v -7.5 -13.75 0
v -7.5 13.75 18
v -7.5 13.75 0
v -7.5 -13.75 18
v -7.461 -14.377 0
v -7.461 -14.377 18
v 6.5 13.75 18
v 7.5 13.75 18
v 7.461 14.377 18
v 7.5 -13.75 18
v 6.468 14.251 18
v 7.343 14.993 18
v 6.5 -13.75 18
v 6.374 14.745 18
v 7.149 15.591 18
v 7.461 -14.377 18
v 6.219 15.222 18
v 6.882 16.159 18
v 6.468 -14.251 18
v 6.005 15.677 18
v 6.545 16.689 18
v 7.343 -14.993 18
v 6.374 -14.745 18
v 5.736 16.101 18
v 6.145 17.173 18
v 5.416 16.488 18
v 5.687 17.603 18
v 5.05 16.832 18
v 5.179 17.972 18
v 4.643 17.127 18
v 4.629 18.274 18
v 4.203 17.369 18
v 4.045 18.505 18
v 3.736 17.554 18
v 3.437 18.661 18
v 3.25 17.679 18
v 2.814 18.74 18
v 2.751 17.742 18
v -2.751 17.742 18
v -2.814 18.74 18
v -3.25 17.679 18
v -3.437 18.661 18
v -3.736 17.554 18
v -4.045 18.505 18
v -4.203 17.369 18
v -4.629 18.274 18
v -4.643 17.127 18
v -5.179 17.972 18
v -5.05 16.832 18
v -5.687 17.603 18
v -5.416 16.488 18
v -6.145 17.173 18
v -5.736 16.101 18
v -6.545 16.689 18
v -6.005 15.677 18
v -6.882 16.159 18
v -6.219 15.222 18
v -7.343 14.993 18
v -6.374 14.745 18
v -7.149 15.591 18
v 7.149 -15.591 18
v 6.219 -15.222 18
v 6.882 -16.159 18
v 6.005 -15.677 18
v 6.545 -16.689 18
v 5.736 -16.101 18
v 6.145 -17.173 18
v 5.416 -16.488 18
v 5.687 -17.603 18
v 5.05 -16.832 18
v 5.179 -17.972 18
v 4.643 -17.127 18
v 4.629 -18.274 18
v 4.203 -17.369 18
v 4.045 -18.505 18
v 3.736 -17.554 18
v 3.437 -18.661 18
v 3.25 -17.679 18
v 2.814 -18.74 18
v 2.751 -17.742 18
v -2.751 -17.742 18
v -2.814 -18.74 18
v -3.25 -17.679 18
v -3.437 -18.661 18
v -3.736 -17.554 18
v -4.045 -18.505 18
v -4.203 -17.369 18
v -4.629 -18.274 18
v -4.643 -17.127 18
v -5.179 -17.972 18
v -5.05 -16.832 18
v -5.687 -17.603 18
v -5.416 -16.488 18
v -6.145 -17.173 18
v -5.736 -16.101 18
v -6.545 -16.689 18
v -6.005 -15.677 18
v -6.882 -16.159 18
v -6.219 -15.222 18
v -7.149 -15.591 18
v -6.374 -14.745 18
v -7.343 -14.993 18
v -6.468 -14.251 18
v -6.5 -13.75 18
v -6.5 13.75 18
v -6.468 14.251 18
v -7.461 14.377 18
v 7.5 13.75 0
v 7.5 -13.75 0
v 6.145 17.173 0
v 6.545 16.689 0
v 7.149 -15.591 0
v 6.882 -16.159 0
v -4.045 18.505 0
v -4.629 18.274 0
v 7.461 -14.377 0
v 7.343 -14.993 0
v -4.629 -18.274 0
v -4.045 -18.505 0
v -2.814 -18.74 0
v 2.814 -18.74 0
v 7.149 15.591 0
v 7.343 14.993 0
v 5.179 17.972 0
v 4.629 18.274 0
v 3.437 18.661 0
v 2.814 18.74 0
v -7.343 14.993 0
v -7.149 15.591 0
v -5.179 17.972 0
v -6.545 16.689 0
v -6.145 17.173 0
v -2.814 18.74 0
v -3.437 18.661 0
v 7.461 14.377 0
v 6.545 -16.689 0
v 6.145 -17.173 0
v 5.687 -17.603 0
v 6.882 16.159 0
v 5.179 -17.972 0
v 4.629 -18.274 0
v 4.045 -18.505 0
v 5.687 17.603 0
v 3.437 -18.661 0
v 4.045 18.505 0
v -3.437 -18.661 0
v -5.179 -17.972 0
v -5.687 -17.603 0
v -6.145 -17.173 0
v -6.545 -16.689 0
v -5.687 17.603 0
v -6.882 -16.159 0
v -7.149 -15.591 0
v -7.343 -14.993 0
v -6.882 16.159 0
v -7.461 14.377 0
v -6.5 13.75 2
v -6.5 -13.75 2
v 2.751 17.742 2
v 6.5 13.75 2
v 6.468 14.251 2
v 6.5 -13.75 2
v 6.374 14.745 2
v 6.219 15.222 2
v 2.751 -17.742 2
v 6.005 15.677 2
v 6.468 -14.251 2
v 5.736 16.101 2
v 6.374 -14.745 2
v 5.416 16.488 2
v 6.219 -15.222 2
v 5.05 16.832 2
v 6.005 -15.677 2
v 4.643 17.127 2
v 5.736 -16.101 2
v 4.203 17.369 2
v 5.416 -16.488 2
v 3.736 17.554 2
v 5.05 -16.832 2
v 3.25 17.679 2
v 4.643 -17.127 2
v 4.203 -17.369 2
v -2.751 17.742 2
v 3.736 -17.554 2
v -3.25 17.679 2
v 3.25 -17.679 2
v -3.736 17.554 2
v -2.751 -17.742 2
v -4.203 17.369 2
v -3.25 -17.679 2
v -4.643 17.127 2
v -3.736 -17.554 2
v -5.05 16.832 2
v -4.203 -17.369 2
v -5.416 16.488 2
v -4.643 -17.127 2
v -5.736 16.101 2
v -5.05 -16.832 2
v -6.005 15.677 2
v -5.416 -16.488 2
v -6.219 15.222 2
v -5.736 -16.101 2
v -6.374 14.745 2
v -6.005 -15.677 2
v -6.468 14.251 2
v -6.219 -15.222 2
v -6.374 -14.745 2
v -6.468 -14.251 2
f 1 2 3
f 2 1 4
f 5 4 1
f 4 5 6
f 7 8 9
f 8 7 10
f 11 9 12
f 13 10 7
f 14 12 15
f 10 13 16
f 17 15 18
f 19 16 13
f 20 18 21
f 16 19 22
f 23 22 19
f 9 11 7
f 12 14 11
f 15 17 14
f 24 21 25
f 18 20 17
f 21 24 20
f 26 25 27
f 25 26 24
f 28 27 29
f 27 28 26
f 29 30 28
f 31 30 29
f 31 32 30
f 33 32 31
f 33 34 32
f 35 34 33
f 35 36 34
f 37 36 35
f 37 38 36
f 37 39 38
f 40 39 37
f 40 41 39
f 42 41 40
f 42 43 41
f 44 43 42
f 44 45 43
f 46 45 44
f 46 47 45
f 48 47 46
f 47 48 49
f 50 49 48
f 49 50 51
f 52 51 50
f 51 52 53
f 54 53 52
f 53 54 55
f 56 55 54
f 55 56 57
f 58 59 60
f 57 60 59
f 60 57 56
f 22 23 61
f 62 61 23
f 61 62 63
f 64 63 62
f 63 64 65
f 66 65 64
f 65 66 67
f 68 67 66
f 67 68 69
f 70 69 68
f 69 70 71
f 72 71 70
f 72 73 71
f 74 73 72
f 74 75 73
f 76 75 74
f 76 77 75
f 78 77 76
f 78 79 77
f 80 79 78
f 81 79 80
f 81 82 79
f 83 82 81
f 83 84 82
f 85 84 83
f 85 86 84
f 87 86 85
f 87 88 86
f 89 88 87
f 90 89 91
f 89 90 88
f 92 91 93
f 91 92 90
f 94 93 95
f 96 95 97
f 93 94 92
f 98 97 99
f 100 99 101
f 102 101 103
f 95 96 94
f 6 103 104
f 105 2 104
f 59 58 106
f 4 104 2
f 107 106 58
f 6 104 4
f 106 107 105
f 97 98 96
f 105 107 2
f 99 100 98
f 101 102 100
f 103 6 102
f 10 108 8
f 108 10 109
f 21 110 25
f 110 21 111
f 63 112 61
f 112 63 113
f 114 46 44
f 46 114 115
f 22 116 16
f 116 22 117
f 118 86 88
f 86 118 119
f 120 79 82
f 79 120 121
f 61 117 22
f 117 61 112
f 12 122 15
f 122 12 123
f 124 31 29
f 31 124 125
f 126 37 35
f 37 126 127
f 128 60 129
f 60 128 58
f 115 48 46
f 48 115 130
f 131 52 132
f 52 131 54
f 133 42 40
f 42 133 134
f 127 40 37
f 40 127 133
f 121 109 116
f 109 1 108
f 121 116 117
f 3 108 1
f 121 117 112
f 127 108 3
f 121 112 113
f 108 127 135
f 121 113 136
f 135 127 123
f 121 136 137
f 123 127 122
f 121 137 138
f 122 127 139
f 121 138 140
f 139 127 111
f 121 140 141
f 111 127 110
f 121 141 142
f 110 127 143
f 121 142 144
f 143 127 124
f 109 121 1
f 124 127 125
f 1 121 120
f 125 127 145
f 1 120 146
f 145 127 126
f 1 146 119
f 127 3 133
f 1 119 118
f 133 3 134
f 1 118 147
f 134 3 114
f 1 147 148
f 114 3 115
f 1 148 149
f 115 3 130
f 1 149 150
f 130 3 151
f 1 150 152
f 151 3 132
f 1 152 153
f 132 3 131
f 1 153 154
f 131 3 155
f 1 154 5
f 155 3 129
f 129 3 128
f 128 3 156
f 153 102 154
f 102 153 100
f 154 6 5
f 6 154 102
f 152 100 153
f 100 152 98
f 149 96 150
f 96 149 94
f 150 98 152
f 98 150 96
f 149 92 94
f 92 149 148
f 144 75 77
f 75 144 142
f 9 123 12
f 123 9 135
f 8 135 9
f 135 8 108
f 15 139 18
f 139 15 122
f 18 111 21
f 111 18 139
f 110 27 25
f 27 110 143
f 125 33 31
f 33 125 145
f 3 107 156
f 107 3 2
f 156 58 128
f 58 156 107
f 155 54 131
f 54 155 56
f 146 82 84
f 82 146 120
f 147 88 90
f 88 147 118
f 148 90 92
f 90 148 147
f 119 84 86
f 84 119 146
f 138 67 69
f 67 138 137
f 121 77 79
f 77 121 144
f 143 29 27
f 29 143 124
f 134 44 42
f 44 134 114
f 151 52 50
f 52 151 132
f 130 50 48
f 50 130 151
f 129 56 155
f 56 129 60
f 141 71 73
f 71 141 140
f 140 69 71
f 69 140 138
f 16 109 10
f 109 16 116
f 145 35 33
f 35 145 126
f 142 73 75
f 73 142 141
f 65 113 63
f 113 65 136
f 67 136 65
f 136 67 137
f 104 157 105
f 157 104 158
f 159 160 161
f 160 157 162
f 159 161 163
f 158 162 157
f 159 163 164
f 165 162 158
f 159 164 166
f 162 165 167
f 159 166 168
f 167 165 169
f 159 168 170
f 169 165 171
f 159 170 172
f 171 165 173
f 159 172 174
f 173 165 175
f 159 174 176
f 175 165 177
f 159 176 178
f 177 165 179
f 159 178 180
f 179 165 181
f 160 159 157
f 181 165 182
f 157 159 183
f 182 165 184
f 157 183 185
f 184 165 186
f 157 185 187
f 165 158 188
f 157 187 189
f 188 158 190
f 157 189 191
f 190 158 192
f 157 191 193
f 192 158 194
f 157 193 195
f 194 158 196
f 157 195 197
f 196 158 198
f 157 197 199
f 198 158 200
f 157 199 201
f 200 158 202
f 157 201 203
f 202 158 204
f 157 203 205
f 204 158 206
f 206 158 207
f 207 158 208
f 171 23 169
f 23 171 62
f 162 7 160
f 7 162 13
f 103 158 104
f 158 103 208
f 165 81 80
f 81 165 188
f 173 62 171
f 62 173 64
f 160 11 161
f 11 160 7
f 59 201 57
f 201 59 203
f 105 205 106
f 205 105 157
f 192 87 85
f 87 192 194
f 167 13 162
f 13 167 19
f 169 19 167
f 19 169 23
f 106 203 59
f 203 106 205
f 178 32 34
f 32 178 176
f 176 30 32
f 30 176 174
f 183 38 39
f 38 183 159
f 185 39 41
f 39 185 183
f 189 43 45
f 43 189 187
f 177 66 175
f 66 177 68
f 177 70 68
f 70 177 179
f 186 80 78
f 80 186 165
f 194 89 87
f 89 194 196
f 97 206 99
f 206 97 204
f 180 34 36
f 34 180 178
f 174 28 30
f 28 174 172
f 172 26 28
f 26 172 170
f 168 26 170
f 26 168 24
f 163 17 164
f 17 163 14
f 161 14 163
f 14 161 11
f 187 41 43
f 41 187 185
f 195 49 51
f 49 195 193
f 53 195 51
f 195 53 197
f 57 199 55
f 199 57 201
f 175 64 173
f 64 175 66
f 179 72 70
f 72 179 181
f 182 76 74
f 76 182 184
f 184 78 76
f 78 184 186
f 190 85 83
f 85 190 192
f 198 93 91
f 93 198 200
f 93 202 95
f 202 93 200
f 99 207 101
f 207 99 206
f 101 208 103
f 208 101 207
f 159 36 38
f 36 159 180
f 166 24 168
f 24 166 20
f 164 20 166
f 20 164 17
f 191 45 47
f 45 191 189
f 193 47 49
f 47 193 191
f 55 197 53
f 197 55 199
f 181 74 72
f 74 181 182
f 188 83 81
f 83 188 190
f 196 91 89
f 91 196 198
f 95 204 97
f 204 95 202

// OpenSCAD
$fn = 50;


difference() {
	union() {
		hull() {
			translate(v = [-2.5000000000, 13.7500000000, 0]) {
				cylinder(h = 18, r = 5);
			}
			translate(v = [2.5000000000, 13.7500000000, 0]) {
				cylinder(h = 18, r = 5);
			}
			translate(v = [-2.5000000000, -13.7500000000, 0]) {
				cylinder(h = 18, r = 5);
			}
			translate(v = [2.5000000000, -13.7500000000, 0]) {
				cylinder(h = 18, r = 5);
			}
		}
	}
	union() {
		translate(v = [0, 0, 2]) {
			hull() {
				translate(v = [-2.5000000000, 13.7500000000, 0]) {
					cylinder(h = 16, r = 4);
				}
				translate(v = [2.5000000000, 13.7500000000, 0]) {
					cylinder(h = 16, r = 4);
				}
				translate(v = [-2.5000000000, -13.7500000000, 0]) {
					cylinder(h = 16, r = 4);
				}
				translate(v = [2.5000000000, -13.7500000000, 0]) {
					cylinder(h = 16, r = 4);
				}
			}
		}
	}
}
